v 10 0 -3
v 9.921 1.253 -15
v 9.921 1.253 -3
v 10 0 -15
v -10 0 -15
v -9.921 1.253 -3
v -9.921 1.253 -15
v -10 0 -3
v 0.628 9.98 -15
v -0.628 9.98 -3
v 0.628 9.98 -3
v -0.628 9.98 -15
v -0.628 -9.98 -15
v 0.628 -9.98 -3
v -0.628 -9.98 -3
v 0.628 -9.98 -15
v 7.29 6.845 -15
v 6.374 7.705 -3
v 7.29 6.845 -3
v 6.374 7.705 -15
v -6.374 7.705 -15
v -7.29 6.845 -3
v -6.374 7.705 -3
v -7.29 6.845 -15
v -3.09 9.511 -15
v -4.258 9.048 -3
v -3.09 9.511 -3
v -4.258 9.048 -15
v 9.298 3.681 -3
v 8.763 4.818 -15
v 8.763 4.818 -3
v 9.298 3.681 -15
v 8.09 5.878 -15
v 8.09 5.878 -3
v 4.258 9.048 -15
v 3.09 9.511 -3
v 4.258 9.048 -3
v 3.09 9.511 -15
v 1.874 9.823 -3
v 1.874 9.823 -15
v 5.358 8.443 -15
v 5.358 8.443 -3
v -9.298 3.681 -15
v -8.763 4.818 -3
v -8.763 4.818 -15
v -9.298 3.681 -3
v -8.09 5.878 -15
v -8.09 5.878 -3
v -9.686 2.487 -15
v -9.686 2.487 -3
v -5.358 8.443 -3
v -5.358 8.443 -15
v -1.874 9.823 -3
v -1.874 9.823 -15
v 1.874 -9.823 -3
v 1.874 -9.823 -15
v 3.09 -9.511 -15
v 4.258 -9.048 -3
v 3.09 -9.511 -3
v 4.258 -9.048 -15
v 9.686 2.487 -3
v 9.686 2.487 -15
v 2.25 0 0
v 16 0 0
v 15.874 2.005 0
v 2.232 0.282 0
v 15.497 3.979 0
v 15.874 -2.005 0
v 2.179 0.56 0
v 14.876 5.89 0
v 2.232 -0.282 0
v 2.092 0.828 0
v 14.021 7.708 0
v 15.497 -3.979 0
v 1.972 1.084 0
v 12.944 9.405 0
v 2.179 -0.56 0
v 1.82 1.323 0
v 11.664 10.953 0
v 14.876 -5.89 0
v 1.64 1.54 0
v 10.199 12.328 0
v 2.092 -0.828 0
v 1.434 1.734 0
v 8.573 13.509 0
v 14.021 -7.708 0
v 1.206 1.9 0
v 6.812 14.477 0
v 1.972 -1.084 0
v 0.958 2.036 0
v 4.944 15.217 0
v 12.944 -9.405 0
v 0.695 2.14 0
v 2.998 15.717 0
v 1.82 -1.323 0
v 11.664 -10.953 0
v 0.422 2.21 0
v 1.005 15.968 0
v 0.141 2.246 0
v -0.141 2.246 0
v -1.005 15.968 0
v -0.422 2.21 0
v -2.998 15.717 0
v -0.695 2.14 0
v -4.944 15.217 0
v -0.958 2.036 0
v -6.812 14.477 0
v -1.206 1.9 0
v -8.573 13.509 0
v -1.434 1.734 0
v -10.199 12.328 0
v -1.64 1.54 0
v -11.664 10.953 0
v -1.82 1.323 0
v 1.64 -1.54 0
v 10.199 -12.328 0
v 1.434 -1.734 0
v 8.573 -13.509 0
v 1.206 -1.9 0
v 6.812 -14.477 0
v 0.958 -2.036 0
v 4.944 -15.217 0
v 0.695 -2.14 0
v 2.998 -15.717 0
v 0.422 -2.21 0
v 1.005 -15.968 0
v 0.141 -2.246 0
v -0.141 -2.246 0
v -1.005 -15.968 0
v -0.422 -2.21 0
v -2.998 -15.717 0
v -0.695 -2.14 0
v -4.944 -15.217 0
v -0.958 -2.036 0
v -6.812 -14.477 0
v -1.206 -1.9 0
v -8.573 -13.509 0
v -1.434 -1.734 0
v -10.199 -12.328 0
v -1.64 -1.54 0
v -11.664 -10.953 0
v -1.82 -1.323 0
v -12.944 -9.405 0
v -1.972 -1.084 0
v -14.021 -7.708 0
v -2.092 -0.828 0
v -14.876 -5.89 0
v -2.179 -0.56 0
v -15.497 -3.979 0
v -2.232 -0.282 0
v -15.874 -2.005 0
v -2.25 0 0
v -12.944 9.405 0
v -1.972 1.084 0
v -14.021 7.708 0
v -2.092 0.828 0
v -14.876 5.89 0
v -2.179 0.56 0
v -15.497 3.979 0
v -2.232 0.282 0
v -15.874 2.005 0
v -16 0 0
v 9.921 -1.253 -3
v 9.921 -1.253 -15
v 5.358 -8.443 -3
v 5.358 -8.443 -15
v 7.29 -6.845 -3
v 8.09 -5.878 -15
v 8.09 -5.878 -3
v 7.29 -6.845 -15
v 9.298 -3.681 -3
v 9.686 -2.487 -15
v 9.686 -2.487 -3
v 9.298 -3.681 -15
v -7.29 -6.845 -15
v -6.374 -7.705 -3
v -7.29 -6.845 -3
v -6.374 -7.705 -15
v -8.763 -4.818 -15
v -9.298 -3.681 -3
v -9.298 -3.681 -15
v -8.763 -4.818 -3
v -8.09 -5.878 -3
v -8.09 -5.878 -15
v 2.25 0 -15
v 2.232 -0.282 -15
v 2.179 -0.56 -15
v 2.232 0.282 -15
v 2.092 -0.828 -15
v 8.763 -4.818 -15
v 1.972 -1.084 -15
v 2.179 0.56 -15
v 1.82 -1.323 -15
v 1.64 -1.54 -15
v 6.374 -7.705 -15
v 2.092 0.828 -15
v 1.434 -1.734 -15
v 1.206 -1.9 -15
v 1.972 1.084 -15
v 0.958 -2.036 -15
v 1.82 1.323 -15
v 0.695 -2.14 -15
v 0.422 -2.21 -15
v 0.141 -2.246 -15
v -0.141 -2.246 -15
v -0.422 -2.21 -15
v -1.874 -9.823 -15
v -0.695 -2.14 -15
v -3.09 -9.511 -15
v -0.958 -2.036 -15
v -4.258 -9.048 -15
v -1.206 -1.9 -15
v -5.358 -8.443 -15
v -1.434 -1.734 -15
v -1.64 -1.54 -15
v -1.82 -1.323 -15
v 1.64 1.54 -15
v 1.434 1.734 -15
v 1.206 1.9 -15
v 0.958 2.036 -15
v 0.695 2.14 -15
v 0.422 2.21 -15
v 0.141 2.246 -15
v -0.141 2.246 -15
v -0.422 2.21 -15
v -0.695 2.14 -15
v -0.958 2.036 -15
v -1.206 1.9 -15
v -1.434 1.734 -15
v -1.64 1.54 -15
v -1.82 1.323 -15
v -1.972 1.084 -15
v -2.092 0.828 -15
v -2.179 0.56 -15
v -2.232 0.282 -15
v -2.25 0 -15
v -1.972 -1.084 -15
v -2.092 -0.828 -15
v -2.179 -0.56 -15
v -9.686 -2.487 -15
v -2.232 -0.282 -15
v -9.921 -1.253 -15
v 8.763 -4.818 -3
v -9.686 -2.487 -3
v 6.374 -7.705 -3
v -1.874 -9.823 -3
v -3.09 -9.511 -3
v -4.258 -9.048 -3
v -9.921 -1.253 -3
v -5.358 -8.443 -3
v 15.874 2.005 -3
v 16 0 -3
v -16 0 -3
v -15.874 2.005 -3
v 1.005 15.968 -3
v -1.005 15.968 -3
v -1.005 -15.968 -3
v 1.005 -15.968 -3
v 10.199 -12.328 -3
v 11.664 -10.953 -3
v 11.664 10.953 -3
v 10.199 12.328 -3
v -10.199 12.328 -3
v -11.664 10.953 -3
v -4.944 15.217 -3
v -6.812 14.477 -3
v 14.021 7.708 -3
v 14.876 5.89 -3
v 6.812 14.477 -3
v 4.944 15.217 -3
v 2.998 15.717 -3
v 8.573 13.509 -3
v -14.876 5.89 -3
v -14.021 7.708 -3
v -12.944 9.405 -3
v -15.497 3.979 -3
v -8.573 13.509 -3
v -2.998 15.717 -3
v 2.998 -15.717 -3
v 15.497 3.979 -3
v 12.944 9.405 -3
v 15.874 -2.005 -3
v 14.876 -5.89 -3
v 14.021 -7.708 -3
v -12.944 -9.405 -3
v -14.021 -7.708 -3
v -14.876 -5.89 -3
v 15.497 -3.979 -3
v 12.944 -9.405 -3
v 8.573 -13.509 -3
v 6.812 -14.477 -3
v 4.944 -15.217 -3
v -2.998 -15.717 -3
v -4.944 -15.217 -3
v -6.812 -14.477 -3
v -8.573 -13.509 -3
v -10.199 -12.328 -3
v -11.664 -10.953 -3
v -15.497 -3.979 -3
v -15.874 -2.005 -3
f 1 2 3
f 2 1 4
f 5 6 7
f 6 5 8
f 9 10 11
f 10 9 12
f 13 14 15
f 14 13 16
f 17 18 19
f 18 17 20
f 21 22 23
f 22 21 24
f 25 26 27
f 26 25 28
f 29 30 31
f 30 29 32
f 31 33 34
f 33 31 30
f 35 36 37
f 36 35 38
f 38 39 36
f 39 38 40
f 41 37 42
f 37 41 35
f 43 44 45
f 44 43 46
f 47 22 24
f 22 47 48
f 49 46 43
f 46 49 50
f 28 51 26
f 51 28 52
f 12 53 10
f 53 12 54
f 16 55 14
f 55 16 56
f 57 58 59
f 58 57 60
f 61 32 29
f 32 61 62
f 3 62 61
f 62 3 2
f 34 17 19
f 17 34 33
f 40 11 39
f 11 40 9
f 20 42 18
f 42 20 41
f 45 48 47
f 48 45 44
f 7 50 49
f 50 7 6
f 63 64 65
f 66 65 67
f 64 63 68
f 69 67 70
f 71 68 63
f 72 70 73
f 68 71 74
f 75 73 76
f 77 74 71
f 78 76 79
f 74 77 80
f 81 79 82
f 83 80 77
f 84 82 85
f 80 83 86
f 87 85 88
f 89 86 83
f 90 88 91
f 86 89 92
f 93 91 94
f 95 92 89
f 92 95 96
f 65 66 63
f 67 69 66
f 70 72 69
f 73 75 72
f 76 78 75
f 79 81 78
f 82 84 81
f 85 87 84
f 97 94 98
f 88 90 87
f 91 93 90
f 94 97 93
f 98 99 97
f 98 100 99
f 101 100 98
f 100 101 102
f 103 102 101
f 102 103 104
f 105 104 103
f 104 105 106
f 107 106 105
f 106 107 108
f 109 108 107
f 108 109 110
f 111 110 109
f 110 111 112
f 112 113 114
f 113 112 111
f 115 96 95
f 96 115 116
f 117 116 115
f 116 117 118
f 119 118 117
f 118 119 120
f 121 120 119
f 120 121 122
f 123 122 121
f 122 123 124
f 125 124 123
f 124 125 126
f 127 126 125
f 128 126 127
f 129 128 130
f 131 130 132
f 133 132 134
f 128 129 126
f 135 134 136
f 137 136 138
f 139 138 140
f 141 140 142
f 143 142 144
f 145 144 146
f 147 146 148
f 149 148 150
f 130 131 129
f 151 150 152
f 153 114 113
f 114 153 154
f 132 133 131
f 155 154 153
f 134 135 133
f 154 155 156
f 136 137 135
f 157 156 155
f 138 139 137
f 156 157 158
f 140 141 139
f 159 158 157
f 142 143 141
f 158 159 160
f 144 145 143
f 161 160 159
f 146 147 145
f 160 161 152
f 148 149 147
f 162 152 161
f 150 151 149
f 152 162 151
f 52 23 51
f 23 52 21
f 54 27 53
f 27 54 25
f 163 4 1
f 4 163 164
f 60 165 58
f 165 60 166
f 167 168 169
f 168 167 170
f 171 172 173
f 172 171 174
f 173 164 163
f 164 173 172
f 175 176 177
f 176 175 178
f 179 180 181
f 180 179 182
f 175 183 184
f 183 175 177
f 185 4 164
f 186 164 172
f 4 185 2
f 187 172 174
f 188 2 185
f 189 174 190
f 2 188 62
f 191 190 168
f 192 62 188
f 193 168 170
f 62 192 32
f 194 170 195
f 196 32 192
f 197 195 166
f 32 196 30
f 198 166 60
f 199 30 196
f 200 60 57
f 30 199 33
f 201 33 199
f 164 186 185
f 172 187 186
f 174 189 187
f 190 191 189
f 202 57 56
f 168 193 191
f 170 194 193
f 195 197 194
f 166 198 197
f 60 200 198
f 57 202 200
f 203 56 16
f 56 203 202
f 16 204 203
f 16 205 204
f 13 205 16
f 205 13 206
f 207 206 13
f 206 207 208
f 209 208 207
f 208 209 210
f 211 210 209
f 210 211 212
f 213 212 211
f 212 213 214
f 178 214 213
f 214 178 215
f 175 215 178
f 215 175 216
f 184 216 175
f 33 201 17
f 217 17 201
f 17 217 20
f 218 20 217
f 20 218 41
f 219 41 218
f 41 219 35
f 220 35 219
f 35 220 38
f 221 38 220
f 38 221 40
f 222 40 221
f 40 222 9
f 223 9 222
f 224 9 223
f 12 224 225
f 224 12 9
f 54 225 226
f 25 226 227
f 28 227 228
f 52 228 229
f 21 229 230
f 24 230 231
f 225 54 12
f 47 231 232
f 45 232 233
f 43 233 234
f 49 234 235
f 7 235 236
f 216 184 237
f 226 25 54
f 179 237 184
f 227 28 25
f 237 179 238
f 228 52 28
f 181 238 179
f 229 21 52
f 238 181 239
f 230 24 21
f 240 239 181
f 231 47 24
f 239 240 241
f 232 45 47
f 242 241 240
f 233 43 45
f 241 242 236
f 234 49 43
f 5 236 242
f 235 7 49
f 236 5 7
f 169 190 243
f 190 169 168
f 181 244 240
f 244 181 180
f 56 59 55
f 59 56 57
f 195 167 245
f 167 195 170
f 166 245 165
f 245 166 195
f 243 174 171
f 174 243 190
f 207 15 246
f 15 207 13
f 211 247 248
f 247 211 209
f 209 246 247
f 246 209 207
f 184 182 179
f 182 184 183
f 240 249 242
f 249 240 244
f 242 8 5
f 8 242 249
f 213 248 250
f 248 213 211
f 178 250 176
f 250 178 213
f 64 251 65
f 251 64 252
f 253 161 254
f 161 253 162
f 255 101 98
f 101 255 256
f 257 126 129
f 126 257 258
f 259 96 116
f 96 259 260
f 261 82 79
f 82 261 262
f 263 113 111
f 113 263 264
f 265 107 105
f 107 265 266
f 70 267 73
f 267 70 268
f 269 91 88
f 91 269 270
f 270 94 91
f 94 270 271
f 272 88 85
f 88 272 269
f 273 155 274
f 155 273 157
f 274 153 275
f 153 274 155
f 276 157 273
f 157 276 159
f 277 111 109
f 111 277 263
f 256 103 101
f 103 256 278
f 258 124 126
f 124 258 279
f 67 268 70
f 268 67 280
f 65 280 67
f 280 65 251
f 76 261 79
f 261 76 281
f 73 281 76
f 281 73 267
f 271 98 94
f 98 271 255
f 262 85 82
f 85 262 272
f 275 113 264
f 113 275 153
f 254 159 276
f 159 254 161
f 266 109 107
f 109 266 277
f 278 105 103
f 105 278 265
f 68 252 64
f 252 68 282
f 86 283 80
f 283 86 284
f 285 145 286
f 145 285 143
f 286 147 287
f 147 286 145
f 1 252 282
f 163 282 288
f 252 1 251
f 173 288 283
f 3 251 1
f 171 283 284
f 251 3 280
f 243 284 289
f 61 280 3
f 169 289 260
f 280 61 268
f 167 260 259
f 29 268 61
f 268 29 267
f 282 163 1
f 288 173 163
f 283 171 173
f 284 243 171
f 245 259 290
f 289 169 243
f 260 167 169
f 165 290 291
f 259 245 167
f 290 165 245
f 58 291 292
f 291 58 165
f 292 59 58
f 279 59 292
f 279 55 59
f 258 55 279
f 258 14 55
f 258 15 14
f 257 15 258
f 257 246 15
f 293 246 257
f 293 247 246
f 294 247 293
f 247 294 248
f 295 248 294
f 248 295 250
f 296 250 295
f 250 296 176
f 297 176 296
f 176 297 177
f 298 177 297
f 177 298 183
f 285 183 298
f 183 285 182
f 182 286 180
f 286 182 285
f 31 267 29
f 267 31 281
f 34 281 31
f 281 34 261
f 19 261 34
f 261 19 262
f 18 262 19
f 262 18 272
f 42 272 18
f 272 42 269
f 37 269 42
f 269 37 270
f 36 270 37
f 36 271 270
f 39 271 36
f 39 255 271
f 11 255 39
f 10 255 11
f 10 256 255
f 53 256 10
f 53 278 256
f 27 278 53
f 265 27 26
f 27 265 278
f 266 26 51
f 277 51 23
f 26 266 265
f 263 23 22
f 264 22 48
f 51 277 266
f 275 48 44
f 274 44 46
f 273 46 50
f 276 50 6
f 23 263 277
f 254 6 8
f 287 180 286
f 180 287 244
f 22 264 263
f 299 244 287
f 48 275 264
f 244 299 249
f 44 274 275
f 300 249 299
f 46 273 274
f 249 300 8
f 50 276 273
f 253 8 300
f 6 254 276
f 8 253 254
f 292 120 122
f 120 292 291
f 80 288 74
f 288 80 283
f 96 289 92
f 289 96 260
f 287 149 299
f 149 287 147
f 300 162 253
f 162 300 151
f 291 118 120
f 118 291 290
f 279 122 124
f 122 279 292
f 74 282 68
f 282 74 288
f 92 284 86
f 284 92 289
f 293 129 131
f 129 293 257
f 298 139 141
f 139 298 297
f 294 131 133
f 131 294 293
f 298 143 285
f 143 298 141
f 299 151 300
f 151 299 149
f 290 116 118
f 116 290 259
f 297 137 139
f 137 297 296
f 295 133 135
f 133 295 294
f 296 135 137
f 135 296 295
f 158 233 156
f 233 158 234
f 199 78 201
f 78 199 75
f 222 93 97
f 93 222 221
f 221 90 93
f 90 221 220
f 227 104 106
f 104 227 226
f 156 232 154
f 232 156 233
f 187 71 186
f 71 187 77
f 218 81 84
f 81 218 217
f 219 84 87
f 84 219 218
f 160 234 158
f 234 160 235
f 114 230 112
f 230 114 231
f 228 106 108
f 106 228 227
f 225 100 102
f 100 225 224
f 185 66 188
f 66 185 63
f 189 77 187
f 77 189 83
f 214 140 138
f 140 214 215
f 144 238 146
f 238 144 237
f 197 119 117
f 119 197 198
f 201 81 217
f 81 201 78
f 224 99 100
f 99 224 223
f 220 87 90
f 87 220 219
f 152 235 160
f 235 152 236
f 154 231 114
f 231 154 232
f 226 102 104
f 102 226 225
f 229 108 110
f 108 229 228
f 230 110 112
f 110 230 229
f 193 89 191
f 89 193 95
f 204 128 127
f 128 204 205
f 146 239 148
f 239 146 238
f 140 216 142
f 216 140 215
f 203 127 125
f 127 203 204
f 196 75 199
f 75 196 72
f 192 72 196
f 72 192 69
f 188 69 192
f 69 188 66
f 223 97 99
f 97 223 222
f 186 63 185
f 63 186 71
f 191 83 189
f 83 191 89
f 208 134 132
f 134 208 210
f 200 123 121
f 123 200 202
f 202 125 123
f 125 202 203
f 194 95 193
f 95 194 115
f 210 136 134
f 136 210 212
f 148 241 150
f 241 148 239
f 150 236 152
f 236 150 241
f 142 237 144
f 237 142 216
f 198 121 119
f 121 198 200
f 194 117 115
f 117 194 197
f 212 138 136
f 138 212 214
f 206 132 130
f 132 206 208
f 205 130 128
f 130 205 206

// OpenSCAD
$fn = 50;


difference() {
	union() {
		translate(v = [0, 0, -15.0000000000]) {
			cylinder(h = 15, r = 10.0000000000);
		}
		translate(v = [0, 0, -3.0000000000]) {
			cylinder(h = 3, r = 16.0000000000);
		}
	}
	union() {
		#translate(v = [0, 0, -15]) {
			cylinder(h = 15, r = 2.2500000000);
		}
	}
}
